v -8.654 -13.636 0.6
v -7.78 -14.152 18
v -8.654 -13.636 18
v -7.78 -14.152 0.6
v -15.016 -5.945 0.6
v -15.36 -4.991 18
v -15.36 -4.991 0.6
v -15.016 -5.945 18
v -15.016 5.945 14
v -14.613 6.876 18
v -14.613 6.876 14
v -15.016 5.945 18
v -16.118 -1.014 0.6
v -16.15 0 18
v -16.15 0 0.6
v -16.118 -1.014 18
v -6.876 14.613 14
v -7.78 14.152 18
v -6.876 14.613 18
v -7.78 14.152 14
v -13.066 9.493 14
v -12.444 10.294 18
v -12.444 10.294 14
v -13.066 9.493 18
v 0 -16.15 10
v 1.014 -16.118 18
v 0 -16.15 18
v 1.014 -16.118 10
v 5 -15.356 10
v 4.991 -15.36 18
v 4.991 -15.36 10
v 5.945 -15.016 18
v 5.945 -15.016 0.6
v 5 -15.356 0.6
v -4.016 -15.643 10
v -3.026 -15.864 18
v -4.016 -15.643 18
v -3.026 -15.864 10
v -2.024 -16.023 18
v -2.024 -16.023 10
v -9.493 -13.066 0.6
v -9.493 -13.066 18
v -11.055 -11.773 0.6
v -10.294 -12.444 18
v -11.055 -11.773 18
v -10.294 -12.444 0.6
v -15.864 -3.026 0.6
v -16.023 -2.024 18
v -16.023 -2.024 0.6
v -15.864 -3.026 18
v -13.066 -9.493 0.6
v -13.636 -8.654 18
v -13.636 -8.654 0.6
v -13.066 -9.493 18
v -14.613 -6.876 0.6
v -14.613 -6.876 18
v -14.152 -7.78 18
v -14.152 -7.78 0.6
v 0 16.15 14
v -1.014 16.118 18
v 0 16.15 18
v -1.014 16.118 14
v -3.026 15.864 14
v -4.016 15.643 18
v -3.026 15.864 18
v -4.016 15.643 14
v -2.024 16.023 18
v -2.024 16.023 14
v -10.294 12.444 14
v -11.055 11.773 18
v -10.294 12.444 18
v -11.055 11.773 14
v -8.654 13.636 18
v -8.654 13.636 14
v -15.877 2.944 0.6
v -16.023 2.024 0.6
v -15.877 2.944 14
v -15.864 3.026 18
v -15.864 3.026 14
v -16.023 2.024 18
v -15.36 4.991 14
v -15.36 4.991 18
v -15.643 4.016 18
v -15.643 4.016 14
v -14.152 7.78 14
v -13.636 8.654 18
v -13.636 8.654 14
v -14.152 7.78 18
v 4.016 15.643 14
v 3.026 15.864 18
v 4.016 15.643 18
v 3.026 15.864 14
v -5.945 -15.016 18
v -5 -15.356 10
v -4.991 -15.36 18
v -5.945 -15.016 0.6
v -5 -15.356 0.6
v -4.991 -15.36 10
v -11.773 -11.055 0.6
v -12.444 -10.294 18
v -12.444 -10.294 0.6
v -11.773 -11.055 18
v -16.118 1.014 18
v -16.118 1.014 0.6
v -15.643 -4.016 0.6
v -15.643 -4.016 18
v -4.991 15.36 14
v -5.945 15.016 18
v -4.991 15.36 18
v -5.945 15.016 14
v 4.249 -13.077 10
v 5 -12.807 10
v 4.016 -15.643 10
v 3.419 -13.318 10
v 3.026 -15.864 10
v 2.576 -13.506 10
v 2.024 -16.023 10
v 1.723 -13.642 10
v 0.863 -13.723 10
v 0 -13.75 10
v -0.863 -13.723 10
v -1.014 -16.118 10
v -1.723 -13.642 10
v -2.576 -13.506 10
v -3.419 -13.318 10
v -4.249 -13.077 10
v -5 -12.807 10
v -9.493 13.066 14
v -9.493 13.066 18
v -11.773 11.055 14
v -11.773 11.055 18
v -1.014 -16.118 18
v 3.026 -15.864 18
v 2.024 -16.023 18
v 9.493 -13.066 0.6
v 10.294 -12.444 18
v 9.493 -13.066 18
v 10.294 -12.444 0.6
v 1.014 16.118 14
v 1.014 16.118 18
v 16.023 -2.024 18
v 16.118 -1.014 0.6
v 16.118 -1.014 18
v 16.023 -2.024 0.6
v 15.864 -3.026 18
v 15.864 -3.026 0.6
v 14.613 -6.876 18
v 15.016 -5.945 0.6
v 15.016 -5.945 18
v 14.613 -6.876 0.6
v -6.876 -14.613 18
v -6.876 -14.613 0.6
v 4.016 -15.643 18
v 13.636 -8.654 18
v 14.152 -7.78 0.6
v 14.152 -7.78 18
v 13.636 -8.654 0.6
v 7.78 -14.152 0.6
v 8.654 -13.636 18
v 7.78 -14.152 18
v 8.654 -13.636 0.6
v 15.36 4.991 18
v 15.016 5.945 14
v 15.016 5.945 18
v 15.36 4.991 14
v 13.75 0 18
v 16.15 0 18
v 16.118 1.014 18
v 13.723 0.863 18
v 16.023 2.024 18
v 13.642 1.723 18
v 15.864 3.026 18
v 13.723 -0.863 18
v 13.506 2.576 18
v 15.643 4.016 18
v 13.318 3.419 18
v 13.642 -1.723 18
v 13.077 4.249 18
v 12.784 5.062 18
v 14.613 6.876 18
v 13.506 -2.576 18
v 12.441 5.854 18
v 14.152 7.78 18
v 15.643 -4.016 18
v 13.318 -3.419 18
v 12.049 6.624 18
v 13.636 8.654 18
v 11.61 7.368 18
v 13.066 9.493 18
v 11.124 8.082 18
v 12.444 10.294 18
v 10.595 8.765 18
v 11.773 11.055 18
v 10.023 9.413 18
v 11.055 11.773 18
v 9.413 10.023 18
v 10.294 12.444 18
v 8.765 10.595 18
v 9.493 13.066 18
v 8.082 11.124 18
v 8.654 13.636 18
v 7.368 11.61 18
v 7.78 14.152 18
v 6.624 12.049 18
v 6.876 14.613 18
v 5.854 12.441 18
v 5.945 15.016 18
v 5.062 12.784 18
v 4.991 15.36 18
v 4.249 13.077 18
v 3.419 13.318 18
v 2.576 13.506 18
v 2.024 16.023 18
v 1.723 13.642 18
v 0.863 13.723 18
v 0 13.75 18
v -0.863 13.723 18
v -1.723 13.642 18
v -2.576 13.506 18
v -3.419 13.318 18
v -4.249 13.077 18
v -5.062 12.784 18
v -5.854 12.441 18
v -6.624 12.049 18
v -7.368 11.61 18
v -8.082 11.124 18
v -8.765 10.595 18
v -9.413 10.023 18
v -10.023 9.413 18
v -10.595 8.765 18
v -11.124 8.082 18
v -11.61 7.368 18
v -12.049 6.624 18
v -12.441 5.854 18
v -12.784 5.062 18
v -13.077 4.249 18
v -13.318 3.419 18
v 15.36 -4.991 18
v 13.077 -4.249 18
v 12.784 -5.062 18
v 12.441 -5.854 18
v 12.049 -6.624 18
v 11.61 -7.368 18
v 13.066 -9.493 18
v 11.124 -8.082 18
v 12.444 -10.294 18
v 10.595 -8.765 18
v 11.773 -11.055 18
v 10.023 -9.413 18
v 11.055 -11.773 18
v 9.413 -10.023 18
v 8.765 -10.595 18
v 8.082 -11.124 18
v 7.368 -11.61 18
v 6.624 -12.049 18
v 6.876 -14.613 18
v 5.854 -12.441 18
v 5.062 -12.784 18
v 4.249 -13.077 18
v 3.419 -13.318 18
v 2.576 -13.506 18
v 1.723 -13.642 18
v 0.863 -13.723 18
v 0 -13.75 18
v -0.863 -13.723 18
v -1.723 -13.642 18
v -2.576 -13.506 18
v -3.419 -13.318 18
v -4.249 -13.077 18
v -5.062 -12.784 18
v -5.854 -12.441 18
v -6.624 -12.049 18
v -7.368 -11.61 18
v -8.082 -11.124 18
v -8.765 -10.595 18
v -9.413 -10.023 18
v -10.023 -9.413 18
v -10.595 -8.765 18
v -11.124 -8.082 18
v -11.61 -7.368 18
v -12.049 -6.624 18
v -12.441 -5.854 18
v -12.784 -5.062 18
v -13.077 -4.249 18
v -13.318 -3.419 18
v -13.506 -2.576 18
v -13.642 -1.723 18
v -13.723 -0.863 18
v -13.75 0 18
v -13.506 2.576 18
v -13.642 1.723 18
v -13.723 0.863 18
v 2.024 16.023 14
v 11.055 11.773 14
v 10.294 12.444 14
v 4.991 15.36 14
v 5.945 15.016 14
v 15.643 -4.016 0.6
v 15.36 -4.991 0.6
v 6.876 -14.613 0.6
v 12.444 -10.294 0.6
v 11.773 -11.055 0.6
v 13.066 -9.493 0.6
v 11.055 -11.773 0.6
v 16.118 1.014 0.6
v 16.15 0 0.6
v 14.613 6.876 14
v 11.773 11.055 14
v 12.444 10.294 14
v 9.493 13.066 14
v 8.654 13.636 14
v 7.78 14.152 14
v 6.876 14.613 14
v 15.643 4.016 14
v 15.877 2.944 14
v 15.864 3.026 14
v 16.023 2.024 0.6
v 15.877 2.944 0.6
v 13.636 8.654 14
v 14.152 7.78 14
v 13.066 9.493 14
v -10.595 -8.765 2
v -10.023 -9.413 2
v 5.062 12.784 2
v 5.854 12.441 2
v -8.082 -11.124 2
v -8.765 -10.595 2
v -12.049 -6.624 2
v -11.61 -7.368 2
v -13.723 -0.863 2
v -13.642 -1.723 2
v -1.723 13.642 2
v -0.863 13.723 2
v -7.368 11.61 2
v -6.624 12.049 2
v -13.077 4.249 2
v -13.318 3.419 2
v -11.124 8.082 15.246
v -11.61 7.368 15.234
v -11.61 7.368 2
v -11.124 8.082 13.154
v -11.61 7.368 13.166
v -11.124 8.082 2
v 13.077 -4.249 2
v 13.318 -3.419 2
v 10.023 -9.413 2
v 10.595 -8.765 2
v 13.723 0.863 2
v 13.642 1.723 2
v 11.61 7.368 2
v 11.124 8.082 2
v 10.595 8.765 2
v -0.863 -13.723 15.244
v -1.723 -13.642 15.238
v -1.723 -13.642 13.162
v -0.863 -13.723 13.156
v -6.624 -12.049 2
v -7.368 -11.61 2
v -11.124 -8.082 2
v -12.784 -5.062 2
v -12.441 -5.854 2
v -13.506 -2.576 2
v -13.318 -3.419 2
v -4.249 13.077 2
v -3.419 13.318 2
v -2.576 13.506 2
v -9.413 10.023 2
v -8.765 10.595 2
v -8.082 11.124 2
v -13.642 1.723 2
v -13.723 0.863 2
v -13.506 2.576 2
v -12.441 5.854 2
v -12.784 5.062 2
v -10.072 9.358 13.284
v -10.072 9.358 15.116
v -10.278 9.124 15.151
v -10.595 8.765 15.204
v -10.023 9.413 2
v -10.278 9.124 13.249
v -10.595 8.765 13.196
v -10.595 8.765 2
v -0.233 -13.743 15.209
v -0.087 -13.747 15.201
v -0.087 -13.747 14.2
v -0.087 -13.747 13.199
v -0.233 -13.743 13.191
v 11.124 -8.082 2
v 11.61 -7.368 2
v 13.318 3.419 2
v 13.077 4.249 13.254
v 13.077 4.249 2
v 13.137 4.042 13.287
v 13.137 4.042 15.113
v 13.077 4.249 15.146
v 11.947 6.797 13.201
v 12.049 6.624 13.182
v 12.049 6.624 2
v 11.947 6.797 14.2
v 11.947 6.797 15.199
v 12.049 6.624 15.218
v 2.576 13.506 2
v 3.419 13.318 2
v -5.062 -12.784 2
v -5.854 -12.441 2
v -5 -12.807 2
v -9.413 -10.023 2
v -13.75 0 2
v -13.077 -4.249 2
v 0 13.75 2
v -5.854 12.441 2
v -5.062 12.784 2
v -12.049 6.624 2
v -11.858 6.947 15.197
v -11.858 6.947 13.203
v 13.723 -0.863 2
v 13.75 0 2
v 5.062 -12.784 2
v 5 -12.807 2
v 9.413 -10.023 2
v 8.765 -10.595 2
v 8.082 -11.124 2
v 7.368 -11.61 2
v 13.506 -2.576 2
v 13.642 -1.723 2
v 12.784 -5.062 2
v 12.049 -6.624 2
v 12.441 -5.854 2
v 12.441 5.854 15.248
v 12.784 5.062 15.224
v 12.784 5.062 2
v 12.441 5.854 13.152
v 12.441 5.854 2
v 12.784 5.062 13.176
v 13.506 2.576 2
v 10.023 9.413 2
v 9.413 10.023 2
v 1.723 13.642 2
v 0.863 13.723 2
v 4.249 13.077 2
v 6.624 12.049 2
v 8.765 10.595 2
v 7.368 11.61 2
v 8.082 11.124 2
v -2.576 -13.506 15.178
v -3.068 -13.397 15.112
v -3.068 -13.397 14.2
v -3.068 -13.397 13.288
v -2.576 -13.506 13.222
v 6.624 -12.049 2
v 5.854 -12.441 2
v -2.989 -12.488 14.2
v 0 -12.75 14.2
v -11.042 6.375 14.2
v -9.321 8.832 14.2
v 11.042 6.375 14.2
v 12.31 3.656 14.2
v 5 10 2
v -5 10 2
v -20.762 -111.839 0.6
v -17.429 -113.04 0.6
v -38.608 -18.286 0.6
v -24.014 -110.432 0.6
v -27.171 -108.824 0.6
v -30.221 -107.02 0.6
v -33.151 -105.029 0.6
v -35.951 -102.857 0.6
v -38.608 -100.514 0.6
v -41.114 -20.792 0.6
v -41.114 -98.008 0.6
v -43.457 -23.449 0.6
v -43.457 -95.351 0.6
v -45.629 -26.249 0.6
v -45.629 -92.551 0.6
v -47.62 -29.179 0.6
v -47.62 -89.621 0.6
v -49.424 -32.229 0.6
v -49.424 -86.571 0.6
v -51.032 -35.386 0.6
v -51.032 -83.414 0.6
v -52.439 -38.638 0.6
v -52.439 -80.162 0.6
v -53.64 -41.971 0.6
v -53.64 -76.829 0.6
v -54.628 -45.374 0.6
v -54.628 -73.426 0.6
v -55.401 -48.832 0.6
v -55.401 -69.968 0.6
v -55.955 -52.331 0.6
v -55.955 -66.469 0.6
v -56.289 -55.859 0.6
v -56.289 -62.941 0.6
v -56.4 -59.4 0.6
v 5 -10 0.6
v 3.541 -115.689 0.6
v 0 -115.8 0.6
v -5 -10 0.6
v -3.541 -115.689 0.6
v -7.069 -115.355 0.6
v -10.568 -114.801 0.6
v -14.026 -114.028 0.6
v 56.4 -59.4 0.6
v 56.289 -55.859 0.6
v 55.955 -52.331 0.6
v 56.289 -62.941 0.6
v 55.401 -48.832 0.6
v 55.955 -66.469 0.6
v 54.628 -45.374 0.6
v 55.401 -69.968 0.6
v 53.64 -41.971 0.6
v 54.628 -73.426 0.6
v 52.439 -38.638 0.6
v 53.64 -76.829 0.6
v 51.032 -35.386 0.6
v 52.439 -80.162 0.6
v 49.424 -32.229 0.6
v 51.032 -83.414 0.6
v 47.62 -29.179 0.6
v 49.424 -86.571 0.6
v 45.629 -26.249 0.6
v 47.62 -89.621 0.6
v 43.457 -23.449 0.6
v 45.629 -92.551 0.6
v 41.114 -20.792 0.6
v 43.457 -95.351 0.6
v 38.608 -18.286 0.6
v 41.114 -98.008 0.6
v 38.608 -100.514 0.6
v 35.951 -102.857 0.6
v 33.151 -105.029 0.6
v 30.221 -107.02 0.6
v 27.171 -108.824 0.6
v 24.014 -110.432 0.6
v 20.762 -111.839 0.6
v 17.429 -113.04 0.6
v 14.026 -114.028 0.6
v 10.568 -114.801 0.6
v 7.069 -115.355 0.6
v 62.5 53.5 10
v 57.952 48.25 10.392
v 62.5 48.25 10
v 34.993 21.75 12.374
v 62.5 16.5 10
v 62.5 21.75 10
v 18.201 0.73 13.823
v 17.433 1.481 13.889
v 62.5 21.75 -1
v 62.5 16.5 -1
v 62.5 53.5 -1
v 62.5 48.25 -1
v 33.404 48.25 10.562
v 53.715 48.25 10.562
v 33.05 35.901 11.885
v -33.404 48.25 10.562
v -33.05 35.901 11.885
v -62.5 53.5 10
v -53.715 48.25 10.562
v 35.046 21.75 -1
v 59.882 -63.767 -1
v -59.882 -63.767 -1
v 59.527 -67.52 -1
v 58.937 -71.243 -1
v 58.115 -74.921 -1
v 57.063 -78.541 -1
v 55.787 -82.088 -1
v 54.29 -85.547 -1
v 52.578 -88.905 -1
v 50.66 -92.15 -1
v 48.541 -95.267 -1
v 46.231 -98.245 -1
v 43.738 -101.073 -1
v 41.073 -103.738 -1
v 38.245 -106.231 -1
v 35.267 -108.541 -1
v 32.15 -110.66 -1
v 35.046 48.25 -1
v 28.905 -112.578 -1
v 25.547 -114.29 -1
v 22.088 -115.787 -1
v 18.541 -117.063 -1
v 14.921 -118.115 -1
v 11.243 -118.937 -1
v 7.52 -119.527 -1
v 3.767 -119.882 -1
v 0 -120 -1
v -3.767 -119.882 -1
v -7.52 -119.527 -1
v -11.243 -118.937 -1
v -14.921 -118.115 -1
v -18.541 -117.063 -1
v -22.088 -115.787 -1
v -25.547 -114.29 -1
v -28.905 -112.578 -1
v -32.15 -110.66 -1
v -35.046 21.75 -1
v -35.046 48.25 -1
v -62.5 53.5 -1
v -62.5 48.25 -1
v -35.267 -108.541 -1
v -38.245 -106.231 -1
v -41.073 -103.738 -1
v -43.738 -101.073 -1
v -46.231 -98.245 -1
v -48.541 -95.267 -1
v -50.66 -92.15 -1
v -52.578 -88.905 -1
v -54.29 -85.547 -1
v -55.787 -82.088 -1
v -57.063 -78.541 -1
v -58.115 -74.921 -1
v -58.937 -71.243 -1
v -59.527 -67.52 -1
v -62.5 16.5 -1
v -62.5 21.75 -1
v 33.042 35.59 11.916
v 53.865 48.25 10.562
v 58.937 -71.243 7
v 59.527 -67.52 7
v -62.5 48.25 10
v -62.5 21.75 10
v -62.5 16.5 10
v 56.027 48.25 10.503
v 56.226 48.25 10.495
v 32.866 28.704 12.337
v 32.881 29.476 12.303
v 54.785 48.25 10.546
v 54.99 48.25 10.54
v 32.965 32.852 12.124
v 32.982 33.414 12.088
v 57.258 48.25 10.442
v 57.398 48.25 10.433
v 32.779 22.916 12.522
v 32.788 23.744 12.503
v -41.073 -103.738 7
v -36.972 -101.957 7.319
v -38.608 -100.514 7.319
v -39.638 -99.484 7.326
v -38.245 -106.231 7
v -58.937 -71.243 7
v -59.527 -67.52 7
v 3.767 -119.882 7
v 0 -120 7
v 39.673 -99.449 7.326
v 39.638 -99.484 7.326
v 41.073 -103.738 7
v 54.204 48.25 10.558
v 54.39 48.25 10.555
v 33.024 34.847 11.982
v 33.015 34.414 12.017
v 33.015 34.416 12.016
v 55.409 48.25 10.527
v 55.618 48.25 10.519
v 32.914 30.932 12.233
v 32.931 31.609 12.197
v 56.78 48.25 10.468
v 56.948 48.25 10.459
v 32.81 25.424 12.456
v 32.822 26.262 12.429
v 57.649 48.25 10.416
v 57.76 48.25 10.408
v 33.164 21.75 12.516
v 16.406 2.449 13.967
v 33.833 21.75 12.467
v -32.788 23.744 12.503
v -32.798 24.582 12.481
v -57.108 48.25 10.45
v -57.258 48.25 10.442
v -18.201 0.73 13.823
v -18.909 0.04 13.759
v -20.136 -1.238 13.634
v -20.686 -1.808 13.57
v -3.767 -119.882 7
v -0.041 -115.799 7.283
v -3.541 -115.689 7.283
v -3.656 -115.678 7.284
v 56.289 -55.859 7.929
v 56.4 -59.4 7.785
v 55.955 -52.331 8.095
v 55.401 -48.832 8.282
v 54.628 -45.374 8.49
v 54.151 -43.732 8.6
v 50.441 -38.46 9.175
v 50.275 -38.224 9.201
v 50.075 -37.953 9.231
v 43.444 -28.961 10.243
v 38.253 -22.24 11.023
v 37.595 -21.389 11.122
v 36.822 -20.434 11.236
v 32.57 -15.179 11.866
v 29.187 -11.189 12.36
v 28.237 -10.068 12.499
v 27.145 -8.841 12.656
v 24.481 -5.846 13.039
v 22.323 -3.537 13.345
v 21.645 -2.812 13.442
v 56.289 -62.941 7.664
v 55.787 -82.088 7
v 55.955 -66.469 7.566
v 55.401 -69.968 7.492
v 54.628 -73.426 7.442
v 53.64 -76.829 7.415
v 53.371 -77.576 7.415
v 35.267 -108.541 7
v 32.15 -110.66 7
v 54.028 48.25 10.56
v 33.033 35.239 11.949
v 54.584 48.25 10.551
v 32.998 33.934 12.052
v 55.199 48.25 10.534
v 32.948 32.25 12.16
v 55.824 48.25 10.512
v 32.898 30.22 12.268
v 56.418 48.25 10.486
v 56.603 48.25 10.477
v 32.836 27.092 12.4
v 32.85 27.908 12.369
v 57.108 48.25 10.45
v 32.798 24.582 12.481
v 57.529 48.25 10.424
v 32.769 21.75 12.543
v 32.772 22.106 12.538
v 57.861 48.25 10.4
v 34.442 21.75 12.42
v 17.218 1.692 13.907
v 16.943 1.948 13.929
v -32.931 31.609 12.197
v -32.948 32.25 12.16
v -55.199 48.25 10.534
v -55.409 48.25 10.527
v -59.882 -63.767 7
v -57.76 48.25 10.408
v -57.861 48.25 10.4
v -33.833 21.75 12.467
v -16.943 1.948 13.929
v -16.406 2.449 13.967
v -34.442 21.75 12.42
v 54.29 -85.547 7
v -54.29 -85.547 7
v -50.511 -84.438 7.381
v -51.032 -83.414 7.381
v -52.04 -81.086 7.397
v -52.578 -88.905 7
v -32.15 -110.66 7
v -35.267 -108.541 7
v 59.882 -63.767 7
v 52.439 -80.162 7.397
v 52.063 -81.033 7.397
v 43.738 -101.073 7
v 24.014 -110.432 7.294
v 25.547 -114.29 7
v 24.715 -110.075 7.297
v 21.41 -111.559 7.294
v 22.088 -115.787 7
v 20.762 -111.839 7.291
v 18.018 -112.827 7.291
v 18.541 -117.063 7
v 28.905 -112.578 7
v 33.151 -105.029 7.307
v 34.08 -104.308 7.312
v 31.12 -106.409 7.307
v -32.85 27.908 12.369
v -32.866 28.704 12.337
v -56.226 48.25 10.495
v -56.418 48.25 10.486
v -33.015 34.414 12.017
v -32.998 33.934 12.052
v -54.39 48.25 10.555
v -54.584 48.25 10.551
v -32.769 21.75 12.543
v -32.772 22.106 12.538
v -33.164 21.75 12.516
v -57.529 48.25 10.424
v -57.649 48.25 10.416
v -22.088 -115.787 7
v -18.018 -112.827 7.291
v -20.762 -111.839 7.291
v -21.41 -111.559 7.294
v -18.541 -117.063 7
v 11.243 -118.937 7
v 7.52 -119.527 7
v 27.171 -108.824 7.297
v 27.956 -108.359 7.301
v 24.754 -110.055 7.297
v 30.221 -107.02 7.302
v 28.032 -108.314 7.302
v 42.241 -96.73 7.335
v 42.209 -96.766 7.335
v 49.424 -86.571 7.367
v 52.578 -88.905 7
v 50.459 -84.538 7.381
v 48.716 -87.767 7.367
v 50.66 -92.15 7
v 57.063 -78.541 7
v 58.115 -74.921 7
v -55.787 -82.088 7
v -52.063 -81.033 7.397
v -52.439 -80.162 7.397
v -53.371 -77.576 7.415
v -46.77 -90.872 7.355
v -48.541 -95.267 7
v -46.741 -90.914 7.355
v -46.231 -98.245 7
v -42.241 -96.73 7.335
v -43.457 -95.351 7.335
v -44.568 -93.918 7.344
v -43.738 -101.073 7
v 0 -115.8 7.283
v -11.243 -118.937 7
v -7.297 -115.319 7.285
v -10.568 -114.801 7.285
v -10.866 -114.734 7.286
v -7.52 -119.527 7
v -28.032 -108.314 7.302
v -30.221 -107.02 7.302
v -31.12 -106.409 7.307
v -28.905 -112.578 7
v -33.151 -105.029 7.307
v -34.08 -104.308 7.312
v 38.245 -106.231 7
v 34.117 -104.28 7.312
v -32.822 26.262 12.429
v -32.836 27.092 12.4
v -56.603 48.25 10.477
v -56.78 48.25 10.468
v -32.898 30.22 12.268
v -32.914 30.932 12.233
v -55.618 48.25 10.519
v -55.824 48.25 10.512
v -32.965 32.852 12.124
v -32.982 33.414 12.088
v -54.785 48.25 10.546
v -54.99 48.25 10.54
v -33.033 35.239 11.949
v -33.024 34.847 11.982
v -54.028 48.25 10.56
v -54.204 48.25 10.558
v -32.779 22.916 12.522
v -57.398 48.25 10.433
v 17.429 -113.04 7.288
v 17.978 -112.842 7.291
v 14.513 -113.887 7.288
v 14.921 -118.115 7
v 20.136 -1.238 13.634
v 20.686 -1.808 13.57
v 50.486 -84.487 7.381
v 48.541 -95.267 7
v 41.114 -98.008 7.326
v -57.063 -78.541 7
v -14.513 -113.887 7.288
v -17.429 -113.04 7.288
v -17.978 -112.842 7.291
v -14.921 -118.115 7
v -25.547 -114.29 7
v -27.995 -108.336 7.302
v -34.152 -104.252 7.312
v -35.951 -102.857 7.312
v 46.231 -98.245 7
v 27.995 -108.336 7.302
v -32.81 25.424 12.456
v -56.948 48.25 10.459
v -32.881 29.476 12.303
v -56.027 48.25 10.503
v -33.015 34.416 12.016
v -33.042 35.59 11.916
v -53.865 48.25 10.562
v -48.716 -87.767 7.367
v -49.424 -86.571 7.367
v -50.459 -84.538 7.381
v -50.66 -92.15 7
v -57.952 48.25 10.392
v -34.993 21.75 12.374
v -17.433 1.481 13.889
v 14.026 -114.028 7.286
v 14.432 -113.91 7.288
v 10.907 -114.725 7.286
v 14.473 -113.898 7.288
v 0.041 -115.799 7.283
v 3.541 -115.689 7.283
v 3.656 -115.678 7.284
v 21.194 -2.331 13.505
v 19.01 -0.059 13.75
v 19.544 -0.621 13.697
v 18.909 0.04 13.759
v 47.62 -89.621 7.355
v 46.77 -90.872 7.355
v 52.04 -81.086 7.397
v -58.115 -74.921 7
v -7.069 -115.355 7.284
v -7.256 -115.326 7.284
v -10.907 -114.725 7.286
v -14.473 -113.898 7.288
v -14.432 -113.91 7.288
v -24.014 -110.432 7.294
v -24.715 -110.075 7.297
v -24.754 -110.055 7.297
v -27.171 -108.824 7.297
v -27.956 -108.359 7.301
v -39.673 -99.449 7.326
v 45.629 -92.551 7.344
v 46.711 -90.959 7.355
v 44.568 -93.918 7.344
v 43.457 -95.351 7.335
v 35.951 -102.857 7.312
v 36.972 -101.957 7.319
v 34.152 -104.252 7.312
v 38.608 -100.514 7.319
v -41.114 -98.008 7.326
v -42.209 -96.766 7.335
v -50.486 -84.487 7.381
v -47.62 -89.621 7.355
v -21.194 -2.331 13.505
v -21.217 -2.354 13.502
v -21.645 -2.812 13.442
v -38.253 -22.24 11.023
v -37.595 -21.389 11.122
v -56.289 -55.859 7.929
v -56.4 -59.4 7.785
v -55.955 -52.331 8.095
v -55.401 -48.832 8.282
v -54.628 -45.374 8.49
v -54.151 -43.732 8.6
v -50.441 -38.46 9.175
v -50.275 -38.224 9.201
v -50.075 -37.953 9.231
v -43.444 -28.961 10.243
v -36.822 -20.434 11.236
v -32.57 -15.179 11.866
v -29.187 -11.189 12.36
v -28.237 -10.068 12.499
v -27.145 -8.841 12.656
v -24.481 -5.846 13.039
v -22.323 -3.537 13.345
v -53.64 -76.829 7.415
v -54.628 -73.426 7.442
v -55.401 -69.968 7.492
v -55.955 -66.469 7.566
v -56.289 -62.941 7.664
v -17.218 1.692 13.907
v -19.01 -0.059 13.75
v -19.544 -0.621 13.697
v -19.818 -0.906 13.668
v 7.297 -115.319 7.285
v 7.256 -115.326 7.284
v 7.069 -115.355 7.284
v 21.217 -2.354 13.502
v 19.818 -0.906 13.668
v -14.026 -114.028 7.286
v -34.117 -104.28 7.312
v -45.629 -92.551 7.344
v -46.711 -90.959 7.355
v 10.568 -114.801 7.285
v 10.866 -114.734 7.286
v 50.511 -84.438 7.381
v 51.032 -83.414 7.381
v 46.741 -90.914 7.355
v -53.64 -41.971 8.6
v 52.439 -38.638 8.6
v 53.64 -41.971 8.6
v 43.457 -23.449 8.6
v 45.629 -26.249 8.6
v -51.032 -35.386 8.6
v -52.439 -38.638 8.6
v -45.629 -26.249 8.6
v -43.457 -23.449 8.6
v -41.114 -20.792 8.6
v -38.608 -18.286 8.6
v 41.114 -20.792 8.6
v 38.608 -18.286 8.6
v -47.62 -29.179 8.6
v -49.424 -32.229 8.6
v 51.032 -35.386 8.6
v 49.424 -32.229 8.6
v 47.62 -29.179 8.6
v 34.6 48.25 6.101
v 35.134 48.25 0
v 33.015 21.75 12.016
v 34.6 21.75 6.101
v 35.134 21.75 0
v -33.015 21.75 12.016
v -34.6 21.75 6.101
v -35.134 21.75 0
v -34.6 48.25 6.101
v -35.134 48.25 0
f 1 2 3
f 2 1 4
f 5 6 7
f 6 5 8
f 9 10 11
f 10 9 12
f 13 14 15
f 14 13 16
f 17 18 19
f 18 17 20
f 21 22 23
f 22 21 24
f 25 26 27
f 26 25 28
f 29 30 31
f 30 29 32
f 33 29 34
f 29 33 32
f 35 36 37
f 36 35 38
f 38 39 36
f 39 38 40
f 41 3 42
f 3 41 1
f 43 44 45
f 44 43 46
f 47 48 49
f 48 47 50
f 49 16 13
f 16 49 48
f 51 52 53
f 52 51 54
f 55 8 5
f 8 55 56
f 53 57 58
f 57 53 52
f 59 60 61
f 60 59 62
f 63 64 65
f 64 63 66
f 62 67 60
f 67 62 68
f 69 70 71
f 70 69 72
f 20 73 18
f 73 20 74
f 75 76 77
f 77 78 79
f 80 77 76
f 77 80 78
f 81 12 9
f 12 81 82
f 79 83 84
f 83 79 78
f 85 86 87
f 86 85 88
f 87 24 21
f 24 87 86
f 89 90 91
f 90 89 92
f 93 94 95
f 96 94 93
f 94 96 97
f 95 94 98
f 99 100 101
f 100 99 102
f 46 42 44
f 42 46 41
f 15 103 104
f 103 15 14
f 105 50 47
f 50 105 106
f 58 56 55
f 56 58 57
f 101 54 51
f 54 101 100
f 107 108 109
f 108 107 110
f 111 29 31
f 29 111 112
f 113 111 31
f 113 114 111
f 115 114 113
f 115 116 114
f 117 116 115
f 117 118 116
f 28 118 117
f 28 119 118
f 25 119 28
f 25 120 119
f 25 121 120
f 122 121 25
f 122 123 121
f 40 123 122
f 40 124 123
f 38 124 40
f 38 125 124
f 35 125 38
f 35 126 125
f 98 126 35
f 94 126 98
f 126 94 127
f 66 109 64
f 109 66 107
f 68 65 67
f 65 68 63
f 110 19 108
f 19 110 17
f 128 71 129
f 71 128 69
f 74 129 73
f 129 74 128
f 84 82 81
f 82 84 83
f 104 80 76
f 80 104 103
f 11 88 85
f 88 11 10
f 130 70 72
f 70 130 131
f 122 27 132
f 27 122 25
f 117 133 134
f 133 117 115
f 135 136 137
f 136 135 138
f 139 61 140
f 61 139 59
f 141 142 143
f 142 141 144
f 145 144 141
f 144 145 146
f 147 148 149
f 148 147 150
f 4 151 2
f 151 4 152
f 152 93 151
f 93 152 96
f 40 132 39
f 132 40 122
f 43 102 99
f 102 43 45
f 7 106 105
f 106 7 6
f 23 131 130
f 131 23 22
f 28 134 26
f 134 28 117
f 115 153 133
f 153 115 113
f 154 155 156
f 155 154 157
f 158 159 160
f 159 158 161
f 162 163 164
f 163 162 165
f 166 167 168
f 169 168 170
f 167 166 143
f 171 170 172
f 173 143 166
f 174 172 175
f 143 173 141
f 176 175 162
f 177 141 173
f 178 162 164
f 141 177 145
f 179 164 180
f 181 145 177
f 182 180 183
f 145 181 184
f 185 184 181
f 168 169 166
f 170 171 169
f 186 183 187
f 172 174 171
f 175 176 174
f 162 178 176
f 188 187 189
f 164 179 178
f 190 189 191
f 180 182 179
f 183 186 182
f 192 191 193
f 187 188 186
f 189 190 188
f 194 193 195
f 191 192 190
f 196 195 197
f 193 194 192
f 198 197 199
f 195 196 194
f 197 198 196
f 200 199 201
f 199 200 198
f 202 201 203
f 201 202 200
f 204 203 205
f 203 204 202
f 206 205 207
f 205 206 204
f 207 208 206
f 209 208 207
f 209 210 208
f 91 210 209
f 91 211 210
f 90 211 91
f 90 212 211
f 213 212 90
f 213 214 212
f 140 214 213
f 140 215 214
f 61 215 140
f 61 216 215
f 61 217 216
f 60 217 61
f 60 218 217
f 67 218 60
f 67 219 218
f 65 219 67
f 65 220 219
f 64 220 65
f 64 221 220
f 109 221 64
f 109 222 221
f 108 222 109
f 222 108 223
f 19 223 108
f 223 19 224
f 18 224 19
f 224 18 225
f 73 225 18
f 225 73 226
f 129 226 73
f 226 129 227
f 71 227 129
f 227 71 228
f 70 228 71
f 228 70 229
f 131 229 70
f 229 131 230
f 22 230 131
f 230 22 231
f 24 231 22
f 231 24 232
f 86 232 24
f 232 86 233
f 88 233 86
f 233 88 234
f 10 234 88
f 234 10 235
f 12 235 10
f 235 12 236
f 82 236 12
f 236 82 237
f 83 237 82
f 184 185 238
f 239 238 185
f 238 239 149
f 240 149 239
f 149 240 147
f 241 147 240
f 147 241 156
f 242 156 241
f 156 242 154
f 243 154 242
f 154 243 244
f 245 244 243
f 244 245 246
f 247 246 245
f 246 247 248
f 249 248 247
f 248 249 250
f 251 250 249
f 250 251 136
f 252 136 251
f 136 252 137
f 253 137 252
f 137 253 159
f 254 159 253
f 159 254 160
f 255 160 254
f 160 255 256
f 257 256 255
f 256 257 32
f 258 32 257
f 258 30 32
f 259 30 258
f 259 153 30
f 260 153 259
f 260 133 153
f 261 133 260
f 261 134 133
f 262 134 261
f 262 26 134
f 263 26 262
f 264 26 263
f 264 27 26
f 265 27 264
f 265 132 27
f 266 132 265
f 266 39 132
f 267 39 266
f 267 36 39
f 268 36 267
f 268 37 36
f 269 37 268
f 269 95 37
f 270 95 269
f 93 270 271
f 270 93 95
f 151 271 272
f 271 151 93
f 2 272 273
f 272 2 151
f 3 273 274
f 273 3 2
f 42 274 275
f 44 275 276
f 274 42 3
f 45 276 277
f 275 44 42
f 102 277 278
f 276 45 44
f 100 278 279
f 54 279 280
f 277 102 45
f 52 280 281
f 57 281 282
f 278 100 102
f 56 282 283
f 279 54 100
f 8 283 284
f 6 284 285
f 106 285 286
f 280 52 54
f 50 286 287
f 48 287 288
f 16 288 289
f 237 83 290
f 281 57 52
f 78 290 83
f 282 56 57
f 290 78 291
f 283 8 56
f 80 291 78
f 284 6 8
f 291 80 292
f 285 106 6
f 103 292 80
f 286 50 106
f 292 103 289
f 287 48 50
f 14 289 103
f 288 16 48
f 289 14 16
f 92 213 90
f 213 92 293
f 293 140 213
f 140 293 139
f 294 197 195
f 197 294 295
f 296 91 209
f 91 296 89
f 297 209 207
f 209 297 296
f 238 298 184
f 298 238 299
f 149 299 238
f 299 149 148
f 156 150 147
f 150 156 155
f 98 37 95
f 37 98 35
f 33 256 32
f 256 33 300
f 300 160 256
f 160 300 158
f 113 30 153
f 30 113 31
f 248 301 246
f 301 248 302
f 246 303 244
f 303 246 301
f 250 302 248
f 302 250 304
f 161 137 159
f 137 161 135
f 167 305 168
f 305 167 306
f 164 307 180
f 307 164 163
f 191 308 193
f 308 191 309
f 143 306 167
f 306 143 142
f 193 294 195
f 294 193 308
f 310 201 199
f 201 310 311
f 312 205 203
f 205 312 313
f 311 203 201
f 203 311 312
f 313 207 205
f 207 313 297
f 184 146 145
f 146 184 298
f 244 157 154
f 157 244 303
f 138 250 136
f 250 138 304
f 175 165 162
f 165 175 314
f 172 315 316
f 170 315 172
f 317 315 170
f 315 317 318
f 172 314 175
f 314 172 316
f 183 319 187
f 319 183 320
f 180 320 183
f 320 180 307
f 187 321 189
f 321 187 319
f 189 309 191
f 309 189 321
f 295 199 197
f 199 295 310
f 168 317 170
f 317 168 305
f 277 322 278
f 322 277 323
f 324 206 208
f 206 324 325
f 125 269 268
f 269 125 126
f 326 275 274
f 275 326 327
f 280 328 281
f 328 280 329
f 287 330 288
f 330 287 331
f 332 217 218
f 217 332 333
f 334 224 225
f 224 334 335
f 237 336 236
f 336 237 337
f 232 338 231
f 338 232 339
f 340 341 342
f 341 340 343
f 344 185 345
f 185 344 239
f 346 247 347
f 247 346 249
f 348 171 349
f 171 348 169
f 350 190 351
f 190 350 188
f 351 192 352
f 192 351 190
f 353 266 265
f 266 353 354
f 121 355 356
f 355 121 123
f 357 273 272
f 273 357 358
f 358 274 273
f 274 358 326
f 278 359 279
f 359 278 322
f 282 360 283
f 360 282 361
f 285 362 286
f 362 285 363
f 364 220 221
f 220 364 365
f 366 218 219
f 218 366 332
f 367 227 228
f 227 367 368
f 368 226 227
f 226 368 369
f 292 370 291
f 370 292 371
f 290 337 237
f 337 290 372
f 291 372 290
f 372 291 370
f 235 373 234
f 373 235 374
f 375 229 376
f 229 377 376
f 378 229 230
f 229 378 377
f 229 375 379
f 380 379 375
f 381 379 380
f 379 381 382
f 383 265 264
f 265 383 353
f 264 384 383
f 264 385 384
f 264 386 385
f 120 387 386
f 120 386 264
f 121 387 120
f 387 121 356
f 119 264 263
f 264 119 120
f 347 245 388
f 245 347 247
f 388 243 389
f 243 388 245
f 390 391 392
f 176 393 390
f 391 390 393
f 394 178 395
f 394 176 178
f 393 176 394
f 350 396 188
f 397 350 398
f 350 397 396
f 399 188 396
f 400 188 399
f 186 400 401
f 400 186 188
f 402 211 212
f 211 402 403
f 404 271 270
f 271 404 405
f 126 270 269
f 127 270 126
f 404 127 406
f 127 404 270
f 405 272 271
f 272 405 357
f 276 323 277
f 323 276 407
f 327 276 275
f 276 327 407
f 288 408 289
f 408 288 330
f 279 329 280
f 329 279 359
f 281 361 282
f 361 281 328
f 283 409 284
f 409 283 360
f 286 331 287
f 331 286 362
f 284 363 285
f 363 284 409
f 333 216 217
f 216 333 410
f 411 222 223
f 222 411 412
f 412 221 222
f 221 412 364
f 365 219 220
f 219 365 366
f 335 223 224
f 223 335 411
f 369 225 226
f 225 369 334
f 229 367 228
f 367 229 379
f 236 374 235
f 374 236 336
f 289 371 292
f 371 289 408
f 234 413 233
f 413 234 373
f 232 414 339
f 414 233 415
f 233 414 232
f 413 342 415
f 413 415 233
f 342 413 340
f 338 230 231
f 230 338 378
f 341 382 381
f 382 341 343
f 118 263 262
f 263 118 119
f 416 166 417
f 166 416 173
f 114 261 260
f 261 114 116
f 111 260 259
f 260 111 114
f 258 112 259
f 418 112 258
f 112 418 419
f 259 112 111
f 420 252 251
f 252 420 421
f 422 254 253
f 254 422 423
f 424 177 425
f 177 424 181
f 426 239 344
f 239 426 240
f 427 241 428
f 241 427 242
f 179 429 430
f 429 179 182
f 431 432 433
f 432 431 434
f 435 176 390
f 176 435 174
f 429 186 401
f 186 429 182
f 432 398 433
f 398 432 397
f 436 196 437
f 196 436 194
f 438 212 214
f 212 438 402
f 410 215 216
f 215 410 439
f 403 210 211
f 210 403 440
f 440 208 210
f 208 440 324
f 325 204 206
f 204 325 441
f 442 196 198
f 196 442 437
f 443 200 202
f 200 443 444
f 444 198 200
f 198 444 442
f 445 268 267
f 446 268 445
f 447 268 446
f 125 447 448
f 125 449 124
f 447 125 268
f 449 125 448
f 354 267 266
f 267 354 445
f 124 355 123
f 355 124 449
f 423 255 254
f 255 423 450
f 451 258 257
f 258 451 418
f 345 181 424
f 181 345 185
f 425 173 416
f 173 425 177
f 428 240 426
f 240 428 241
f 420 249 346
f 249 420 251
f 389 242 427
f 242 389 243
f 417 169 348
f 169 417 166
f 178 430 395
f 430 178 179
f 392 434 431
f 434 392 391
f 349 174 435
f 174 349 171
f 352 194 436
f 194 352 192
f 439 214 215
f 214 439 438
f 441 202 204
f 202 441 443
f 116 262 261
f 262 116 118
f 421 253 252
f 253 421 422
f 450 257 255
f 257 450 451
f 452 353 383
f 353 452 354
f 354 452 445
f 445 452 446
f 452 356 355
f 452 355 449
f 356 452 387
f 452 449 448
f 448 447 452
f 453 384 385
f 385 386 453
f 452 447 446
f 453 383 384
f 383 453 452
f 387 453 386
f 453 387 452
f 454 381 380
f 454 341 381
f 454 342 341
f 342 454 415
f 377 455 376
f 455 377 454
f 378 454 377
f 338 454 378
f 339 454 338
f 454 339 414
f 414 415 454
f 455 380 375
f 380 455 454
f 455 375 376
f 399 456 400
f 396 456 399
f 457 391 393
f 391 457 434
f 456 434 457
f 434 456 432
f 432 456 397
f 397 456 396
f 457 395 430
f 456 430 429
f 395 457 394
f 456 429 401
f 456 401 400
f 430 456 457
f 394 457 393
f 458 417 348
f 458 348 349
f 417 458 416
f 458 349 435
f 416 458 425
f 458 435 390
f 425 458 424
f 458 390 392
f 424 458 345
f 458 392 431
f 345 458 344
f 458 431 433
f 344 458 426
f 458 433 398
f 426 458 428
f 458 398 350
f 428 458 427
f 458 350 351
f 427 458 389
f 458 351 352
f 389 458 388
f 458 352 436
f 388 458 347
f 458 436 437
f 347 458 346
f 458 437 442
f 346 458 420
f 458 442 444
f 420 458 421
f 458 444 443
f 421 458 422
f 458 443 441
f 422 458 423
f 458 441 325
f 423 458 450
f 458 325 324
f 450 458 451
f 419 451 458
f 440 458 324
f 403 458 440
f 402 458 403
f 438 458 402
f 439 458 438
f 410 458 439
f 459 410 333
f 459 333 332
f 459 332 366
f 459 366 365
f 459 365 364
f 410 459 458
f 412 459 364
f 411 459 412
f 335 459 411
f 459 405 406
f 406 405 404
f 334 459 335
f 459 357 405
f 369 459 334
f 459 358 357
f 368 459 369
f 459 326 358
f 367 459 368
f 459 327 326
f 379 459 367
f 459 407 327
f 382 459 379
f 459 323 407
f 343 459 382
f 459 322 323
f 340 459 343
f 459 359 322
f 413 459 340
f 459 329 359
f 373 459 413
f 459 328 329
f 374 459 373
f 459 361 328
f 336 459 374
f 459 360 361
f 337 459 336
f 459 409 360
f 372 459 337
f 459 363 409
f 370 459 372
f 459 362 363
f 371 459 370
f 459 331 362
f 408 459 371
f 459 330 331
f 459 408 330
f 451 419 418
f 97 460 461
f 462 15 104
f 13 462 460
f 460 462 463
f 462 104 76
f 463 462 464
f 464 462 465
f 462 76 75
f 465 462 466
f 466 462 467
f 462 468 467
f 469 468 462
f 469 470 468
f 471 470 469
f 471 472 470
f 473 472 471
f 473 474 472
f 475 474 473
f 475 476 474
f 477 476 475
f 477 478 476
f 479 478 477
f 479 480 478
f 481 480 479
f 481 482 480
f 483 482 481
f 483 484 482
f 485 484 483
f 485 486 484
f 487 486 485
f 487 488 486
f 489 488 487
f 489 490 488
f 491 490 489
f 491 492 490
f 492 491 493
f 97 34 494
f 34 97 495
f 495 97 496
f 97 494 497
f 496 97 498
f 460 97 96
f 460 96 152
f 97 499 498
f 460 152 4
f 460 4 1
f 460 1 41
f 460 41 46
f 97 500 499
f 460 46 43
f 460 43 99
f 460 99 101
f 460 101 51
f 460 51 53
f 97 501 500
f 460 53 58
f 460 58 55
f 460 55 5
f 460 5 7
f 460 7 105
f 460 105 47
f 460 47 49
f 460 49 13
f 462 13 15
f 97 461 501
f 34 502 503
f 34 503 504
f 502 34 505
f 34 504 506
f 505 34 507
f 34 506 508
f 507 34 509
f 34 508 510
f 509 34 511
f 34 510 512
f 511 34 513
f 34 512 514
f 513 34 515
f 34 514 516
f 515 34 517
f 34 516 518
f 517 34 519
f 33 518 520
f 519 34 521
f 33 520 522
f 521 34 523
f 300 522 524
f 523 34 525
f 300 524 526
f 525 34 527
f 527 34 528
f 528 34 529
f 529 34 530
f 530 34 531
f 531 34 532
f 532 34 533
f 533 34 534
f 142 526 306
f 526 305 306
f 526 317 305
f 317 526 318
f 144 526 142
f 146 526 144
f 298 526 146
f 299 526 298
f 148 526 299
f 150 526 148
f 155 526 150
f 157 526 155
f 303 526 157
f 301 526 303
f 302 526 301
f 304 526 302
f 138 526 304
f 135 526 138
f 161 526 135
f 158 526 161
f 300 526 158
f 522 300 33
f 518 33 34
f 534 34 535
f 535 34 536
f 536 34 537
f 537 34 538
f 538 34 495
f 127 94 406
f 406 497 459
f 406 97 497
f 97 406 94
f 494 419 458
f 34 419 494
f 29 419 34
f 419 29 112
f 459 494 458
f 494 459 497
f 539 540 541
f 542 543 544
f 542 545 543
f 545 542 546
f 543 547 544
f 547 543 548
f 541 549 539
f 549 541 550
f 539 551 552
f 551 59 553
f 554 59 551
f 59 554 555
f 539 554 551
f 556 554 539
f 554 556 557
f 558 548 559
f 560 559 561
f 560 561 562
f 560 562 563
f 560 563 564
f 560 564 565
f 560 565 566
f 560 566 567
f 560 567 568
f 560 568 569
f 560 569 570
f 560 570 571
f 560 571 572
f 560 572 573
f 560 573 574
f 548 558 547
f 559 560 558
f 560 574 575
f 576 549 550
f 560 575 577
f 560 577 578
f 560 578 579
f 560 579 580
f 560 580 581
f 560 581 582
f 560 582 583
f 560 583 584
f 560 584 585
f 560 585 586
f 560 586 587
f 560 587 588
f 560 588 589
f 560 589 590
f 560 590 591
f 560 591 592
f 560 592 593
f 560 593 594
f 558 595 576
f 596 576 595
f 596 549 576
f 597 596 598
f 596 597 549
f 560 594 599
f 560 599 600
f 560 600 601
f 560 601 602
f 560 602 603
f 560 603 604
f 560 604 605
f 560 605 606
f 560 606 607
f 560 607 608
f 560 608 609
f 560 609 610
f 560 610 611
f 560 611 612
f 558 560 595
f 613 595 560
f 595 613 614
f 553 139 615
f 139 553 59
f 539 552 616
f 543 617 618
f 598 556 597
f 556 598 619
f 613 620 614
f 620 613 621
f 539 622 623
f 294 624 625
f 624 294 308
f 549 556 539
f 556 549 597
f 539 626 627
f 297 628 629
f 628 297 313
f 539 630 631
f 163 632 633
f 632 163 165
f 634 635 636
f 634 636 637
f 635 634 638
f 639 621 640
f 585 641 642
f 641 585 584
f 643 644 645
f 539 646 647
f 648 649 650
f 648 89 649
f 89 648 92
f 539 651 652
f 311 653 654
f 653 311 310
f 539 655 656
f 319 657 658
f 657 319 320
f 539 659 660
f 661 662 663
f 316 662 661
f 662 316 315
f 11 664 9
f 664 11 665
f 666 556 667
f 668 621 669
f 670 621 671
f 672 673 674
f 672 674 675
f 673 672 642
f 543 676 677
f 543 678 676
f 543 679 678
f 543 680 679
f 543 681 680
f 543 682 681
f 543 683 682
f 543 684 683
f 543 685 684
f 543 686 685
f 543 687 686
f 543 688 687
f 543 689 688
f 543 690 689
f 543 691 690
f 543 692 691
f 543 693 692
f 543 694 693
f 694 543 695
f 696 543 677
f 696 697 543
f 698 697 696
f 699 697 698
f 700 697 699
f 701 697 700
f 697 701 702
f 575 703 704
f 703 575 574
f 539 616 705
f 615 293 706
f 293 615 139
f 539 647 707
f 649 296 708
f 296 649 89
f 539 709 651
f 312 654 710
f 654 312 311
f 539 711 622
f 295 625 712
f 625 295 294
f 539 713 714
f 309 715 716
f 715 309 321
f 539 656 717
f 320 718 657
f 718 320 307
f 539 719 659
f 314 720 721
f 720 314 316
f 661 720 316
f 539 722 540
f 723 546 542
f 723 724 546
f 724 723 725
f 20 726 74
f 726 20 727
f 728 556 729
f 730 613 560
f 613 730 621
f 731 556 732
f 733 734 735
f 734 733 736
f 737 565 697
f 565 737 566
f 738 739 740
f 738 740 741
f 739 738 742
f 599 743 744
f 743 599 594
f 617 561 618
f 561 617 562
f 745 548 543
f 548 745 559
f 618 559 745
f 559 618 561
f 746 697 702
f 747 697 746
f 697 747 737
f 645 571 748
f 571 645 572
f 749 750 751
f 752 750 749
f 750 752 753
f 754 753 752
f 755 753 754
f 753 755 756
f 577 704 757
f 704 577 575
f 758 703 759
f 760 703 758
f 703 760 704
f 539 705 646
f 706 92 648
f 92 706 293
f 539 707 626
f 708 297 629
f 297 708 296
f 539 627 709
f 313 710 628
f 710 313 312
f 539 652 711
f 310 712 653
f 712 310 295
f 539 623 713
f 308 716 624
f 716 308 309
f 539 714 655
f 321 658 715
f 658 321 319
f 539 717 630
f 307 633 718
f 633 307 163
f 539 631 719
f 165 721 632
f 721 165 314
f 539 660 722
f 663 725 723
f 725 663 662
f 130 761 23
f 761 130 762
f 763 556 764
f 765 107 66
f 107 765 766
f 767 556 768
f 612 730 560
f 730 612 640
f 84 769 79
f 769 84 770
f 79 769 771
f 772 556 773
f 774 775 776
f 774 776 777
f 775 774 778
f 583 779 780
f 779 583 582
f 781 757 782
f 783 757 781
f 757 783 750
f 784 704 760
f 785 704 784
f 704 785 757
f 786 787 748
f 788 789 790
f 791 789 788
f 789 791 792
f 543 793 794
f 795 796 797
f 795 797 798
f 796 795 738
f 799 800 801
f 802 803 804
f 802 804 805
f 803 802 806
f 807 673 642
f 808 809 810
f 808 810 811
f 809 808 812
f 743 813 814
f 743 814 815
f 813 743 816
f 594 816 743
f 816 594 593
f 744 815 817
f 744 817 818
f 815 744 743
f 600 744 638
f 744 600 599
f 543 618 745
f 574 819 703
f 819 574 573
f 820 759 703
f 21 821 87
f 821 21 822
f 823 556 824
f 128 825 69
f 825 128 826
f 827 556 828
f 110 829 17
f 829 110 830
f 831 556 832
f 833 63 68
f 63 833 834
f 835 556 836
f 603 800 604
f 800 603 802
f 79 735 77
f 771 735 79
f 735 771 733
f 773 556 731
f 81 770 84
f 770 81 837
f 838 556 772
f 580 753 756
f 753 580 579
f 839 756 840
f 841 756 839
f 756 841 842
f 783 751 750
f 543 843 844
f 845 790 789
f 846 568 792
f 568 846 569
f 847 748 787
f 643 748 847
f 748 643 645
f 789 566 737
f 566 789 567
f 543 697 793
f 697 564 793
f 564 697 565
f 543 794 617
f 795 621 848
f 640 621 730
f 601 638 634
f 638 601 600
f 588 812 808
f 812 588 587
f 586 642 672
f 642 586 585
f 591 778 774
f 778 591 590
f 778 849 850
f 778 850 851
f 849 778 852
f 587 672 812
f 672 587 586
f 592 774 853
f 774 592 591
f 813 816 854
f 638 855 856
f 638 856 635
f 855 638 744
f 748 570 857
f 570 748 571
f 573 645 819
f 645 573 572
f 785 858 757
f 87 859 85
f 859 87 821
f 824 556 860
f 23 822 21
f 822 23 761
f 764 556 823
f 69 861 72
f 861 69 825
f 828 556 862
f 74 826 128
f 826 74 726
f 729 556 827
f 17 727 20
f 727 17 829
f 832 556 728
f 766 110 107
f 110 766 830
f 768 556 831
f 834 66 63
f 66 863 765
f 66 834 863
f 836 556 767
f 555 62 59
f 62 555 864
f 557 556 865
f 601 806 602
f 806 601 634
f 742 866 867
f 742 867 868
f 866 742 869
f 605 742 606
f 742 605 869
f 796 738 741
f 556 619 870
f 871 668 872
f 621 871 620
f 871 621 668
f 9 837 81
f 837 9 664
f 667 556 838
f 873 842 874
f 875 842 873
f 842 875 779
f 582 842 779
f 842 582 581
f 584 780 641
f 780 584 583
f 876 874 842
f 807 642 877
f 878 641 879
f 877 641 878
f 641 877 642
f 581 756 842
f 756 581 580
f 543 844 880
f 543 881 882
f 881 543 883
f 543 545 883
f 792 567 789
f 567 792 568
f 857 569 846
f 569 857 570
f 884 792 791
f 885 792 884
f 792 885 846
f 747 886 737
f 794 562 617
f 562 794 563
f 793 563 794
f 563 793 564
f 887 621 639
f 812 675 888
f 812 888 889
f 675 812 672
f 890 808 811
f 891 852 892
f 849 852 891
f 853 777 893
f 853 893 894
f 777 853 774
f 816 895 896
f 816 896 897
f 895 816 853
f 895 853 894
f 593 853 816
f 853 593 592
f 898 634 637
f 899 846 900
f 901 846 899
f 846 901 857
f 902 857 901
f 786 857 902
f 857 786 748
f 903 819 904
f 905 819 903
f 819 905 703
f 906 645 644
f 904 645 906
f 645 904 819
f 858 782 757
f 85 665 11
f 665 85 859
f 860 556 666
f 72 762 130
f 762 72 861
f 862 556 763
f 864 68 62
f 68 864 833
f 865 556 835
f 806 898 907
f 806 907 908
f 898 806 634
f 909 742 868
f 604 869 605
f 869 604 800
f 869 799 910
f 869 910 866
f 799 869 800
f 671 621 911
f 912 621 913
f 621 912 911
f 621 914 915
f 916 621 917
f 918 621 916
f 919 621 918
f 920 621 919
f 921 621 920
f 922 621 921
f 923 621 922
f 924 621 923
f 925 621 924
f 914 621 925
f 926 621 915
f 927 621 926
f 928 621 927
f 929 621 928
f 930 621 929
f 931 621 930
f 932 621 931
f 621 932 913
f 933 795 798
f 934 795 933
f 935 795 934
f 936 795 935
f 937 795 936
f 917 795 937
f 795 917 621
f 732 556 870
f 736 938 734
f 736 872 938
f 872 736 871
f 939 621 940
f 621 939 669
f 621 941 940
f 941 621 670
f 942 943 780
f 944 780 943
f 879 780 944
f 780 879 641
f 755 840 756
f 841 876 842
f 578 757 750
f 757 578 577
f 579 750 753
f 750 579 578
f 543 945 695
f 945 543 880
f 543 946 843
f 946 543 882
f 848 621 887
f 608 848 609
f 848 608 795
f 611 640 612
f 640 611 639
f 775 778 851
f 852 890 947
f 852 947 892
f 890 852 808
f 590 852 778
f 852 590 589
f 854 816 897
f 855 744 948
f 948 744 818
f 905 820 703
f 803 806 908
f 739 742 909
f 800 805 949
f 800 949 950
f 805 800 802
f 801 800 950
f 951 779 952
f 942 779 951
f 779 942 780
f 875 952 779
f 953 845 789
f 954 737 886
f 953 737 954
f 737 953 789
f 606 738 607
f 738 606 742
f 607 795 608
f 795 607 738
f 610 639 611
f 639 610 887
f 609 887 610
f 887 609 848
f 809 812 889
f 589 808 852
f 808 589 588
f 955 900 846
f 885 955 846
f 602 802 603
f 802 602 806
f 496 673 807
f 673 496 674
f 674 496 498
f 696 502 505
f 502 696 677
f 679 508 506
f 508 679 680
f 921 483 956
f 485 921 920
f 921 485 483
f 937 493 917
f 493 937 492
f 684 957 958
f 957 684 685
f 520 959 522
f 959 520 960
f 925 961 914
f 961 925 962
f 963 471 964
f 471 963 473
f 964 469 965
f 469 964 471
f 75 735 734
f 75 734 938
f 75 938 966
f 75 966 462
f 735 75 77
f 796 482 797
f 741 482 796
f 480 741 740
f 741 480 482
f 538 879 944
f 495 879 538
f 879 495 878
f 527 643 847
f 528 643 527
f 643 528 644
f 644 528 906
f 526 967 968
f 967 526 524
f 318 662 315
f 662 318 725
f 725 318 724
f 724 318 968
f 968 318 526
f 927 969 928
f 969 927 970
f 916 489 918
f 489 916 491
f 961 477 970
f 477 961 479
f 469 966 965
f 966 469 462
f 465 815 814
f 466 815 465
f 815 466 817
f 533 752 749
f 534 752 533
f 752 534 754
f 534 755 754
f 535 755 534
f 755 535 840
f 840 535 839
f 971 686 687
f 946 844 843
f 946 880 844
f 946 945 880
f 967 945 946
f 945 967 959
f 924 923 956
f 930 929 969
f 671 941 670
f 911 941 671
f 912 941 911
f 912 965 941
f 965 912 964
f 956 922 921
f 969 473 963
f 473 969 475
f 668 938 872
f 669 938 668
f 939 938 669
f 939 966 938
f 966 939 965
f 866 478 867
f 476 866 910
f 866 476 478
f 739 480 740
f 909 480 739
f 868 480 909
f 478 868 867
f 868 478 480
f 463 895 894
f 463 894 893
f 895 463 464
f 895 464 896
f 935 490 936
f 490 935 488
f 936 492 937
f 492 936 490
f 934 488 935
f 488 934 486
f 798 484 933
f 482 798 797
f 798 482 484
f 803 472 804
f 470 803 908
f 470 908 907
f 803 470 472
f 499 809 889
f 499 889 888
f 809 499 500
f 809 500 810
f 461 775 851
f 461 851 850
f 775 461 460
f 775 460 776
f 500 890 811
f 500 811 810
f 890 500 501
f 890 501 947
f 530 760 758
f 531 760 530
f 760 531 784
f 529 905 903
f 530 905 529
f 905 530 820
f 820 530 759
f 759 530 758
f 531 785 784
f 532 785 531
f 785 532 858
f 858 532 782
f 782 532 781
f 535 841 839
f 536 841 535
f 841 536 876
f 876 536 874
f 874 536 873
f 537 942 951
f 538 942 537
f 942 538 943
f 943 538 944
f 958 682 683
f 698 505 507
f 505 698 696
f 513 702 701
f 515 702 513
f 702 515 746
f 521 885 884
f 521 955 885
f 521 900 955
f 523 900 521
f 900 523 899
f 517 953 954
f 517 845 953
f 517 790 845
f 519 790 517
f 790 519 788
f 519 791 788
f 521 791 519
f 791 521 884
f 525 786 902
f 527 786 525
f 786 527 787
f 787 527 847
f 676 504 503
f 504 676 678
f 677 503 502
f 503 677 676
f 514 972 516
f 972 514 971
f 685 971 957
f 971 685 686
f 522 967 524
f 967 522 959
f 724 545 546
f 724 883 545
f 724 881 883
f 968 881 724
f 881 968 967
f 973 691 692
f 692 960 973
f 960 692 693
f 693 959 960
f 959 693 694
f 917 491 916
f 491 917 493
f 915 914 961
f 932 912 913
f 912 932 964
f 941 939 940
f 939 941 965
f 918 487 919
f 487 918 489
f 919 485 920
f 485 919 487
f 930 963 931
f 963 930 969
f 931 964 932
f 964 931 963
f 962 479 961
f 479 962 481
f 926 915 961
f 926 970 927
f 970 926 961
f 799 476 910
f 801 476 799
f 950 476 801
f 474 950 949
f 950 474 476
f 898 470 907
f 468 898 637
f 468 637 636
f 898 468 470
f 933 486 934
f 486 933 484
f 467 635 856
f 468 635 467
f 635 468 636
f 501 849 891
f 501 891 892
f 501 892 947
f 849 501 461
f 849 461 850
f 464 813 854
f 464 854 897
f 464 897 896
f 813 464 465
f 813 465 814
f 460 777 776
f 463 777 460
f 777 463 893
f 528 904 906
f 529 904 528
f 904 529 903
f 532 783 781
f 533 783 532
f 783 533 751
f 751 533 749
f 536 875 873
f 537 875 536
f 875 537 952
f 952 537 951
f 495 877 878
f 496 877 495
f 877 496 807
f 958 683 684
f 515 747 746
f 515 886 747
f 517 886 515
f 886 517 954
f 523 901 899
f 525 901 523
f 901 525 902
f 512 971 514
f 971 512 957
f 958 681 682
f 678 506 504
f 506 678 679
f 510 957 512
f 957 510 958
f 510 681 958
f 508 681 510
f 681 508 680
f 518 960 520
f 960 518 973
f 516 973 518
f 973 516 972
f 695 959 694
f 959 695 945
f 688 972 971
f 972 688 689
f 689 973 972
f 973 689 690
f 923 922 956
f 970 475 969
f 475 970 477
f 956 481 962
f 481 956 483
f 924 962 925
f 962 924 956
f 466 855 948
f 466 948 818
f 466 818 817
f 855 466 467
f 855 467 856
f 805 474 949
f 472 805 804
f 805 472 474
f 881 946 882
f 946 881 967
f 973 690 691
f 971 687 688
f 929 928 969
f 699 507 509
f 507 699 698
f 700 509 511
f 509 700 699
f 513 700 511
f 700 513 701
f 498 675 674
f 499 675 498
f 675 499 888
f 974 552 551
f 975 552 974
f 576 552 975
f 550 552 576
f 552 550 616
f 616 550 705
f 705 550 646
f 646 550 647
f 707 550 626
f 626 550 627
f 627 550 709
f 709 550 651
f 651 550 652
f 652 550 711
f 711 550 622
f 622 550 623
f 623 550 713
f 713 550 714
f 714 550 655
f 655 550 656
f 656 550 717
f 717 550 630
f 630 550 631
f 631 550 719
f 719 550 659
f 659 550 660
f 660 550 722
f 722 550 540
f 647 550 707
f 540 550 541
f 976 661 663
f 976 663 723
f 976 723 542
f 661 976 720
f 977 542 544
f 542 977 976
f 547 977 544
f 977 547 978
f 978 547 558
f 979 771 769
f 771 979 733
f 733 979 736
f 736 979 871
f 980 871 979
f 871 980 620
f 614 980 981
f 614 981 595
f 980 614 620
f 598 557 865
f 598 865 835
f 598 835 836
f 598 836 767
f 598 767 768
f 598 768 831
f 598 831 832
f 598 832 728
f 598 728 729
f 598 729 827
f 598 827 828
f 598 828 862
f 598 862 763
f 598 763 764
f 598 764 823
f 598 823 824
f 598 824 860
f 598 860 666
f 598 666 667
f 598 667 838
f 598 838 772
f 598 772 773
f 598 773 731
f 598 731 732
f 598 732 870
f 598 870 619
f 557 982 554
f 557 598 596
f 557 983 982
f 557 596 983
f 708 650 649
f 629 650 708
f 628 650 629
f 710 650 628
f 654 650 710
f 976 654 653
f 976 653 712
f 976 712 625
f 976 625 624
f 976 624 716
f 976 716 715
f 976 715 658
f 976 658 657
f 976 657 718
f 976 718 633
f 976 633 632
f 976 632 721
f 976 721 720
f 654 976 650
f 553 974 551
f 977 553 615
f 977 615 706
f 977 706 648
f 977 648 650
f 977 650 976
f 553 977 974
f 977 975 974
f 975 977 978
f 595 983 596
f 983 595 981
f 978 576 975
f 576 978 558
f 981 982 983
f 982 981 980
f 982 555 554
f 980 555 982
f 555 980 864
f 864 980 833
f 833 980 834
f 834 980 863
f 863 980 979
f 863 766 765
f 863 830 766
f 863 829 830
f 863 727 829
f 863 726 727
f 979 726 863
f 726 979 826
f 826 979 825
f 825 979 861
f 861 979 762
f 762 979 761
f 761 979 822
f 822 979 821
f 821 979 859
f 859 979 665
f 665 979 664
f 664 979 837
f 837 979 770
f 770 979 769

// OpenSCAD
/*

Object Name: Bird Bath (OpenSCAD)
Author: Brian Khuu 2021

Based on https://www.reddit.com/r/functionalprint/comments/jgg3fk/sanitiser_mount_on_a_fence_openscad/ but remixed with "Auto refill Water fountain for turtle" by vinneB https://www.thingiverse.com/thing:632553/files

*/

$fn = 100;

cubetolx = 5;
cubetoly = 1.5;
cubecut = 25; // 2.5cm
cubespacing = 75; // 7.5cm
cubegrip = 3; // 2cm

holderw = cubespacing+cubecut*2;
holderh = 10;

bottlew = 70; // 6.6cm 
bottleholderh = 5;//40; // 4cm

mountoffset=0;
wall = 3;


//////////////////////////////////////////////
// REF: Auto refill Water fountain for turtle 
//      by vinnieB January 13, 2015
// https://www.thingiverse.com/thing:632553/files
bottlescrewTol = 2.5;

rad  = 30-bottlescrewTol;
rad2 = 28-bottlescrewTol;
heit = 8;

thick = 2.4;

module bottleRing()
{
    difference()
    {
        cylinder(r = rad/2+thick,h=heit);
        translate([0,0,heit/2])
            cylinder(r=rad/2,h=heit+.1, center=true);
    }

    for(i=[0:2])
    {
        translate([cos(120*i)*rad2/2,sin(120*i)*rad2/2,heit-4.2])
            rotate(i*120+5,[0,0,1])
                rotate(45,[0,1,0])
                    cube([1.5,3,1.5]);
    }
}

module waterBak1()
{
	hull()
	{
        translate([0,0,0])
            cylinder(r=rad/2+thick,h=15);
        translate([60,0,0])
            cylinder(r=60,h=8);
	}
}

/////////////////////////////////////////////////////////////


//if (0)
difference()
{
    union()
    {
        hull()
        {
            translate([0,0,0-1])
            hull()
            {
                translate([0,bottlew/2-mountoffset,(holderh+1)/2])
                    cube([holderw, cubecut+wall*2+cubegrip*2, (holderh+1)], center = true);
            }
            
            rotate([0,0,-90])
                translate([0,0,-1])
                    scale([1,1,1.0])
                        waterBak1(); ///< BirdBathStuff Dish
        }
        
        /// BirdBathStuff
        rotate([0,0,-90])
                translate([0,0,0])
                    cylinder(r=rad/2+thick,h=18); ///< Bottle Cap
    }

    /// BirdBathStuff
    rotate([0,0,-90])
    {
        translate([3,0,.6])
            scale([.94,.94,1.0])
                waterBak1(); ///< Dish
        translate([0,0,2])
            cylinder(r=rad/2,h=18); ///< Bottle Cap Center Cut
    }
    /// End of BirdBathStuff

    for(deg = [-45 : 10 : +45])
    rotate([0,deg,0])
    union()
    {
        translate([cubespacing/2+cubecut/2,bottlew/2-mountoffset,(holderh+1)/2-1])
            cube([cubecut+cubetolx, cubecut+cubetoly, (holderh+3-1)+10], center = true);
        translate([-cubespacing/2-cubecut/2,bottlew/2-mountoffset,(holderh+1)/2-1])
            cube([cubecut+cubetolx, cubecut+cubetoly, (holderh+3-1)+10], center = true);
    }
}

rotate([0,0,-90])
{
    difference()
    {
        translate([0,0,0])
            cylinder(r=rad/2+thick,h=18); ///< Bottle Cap
        translate([0,0,2])
            cylinder(r=rad/2,h=18); ///< Bottle Cap Center Cut
        hull()
        {
            translate([10-20,45-50,2])
                cube([5,10,4]); ///< Bottle Cap Water Output
            translate([10,45-50,0.6])
                cube([10,10,10]); ///< Bottle Cap Water Output
        }
    }
    translate([0,0,18])
        rotate(180,[1,0,0])
            bottleRing();
}

/// Model of wall
if (1)
{
%translate([cubespacing/2+cubecut/2,bottlew/2-mountoffset,(holderh+1)/2-1])
    cube([cubecut, cubecut, (holderh+3-1)+1000], center = true);
%translate([-cubespacing/2-cubecut/2,bottlew/2-mountoffset,(holderh+1)/2-1])
    cube([cubecut, cubecut, (holderh+3-1)+1000], center = true);
} 
